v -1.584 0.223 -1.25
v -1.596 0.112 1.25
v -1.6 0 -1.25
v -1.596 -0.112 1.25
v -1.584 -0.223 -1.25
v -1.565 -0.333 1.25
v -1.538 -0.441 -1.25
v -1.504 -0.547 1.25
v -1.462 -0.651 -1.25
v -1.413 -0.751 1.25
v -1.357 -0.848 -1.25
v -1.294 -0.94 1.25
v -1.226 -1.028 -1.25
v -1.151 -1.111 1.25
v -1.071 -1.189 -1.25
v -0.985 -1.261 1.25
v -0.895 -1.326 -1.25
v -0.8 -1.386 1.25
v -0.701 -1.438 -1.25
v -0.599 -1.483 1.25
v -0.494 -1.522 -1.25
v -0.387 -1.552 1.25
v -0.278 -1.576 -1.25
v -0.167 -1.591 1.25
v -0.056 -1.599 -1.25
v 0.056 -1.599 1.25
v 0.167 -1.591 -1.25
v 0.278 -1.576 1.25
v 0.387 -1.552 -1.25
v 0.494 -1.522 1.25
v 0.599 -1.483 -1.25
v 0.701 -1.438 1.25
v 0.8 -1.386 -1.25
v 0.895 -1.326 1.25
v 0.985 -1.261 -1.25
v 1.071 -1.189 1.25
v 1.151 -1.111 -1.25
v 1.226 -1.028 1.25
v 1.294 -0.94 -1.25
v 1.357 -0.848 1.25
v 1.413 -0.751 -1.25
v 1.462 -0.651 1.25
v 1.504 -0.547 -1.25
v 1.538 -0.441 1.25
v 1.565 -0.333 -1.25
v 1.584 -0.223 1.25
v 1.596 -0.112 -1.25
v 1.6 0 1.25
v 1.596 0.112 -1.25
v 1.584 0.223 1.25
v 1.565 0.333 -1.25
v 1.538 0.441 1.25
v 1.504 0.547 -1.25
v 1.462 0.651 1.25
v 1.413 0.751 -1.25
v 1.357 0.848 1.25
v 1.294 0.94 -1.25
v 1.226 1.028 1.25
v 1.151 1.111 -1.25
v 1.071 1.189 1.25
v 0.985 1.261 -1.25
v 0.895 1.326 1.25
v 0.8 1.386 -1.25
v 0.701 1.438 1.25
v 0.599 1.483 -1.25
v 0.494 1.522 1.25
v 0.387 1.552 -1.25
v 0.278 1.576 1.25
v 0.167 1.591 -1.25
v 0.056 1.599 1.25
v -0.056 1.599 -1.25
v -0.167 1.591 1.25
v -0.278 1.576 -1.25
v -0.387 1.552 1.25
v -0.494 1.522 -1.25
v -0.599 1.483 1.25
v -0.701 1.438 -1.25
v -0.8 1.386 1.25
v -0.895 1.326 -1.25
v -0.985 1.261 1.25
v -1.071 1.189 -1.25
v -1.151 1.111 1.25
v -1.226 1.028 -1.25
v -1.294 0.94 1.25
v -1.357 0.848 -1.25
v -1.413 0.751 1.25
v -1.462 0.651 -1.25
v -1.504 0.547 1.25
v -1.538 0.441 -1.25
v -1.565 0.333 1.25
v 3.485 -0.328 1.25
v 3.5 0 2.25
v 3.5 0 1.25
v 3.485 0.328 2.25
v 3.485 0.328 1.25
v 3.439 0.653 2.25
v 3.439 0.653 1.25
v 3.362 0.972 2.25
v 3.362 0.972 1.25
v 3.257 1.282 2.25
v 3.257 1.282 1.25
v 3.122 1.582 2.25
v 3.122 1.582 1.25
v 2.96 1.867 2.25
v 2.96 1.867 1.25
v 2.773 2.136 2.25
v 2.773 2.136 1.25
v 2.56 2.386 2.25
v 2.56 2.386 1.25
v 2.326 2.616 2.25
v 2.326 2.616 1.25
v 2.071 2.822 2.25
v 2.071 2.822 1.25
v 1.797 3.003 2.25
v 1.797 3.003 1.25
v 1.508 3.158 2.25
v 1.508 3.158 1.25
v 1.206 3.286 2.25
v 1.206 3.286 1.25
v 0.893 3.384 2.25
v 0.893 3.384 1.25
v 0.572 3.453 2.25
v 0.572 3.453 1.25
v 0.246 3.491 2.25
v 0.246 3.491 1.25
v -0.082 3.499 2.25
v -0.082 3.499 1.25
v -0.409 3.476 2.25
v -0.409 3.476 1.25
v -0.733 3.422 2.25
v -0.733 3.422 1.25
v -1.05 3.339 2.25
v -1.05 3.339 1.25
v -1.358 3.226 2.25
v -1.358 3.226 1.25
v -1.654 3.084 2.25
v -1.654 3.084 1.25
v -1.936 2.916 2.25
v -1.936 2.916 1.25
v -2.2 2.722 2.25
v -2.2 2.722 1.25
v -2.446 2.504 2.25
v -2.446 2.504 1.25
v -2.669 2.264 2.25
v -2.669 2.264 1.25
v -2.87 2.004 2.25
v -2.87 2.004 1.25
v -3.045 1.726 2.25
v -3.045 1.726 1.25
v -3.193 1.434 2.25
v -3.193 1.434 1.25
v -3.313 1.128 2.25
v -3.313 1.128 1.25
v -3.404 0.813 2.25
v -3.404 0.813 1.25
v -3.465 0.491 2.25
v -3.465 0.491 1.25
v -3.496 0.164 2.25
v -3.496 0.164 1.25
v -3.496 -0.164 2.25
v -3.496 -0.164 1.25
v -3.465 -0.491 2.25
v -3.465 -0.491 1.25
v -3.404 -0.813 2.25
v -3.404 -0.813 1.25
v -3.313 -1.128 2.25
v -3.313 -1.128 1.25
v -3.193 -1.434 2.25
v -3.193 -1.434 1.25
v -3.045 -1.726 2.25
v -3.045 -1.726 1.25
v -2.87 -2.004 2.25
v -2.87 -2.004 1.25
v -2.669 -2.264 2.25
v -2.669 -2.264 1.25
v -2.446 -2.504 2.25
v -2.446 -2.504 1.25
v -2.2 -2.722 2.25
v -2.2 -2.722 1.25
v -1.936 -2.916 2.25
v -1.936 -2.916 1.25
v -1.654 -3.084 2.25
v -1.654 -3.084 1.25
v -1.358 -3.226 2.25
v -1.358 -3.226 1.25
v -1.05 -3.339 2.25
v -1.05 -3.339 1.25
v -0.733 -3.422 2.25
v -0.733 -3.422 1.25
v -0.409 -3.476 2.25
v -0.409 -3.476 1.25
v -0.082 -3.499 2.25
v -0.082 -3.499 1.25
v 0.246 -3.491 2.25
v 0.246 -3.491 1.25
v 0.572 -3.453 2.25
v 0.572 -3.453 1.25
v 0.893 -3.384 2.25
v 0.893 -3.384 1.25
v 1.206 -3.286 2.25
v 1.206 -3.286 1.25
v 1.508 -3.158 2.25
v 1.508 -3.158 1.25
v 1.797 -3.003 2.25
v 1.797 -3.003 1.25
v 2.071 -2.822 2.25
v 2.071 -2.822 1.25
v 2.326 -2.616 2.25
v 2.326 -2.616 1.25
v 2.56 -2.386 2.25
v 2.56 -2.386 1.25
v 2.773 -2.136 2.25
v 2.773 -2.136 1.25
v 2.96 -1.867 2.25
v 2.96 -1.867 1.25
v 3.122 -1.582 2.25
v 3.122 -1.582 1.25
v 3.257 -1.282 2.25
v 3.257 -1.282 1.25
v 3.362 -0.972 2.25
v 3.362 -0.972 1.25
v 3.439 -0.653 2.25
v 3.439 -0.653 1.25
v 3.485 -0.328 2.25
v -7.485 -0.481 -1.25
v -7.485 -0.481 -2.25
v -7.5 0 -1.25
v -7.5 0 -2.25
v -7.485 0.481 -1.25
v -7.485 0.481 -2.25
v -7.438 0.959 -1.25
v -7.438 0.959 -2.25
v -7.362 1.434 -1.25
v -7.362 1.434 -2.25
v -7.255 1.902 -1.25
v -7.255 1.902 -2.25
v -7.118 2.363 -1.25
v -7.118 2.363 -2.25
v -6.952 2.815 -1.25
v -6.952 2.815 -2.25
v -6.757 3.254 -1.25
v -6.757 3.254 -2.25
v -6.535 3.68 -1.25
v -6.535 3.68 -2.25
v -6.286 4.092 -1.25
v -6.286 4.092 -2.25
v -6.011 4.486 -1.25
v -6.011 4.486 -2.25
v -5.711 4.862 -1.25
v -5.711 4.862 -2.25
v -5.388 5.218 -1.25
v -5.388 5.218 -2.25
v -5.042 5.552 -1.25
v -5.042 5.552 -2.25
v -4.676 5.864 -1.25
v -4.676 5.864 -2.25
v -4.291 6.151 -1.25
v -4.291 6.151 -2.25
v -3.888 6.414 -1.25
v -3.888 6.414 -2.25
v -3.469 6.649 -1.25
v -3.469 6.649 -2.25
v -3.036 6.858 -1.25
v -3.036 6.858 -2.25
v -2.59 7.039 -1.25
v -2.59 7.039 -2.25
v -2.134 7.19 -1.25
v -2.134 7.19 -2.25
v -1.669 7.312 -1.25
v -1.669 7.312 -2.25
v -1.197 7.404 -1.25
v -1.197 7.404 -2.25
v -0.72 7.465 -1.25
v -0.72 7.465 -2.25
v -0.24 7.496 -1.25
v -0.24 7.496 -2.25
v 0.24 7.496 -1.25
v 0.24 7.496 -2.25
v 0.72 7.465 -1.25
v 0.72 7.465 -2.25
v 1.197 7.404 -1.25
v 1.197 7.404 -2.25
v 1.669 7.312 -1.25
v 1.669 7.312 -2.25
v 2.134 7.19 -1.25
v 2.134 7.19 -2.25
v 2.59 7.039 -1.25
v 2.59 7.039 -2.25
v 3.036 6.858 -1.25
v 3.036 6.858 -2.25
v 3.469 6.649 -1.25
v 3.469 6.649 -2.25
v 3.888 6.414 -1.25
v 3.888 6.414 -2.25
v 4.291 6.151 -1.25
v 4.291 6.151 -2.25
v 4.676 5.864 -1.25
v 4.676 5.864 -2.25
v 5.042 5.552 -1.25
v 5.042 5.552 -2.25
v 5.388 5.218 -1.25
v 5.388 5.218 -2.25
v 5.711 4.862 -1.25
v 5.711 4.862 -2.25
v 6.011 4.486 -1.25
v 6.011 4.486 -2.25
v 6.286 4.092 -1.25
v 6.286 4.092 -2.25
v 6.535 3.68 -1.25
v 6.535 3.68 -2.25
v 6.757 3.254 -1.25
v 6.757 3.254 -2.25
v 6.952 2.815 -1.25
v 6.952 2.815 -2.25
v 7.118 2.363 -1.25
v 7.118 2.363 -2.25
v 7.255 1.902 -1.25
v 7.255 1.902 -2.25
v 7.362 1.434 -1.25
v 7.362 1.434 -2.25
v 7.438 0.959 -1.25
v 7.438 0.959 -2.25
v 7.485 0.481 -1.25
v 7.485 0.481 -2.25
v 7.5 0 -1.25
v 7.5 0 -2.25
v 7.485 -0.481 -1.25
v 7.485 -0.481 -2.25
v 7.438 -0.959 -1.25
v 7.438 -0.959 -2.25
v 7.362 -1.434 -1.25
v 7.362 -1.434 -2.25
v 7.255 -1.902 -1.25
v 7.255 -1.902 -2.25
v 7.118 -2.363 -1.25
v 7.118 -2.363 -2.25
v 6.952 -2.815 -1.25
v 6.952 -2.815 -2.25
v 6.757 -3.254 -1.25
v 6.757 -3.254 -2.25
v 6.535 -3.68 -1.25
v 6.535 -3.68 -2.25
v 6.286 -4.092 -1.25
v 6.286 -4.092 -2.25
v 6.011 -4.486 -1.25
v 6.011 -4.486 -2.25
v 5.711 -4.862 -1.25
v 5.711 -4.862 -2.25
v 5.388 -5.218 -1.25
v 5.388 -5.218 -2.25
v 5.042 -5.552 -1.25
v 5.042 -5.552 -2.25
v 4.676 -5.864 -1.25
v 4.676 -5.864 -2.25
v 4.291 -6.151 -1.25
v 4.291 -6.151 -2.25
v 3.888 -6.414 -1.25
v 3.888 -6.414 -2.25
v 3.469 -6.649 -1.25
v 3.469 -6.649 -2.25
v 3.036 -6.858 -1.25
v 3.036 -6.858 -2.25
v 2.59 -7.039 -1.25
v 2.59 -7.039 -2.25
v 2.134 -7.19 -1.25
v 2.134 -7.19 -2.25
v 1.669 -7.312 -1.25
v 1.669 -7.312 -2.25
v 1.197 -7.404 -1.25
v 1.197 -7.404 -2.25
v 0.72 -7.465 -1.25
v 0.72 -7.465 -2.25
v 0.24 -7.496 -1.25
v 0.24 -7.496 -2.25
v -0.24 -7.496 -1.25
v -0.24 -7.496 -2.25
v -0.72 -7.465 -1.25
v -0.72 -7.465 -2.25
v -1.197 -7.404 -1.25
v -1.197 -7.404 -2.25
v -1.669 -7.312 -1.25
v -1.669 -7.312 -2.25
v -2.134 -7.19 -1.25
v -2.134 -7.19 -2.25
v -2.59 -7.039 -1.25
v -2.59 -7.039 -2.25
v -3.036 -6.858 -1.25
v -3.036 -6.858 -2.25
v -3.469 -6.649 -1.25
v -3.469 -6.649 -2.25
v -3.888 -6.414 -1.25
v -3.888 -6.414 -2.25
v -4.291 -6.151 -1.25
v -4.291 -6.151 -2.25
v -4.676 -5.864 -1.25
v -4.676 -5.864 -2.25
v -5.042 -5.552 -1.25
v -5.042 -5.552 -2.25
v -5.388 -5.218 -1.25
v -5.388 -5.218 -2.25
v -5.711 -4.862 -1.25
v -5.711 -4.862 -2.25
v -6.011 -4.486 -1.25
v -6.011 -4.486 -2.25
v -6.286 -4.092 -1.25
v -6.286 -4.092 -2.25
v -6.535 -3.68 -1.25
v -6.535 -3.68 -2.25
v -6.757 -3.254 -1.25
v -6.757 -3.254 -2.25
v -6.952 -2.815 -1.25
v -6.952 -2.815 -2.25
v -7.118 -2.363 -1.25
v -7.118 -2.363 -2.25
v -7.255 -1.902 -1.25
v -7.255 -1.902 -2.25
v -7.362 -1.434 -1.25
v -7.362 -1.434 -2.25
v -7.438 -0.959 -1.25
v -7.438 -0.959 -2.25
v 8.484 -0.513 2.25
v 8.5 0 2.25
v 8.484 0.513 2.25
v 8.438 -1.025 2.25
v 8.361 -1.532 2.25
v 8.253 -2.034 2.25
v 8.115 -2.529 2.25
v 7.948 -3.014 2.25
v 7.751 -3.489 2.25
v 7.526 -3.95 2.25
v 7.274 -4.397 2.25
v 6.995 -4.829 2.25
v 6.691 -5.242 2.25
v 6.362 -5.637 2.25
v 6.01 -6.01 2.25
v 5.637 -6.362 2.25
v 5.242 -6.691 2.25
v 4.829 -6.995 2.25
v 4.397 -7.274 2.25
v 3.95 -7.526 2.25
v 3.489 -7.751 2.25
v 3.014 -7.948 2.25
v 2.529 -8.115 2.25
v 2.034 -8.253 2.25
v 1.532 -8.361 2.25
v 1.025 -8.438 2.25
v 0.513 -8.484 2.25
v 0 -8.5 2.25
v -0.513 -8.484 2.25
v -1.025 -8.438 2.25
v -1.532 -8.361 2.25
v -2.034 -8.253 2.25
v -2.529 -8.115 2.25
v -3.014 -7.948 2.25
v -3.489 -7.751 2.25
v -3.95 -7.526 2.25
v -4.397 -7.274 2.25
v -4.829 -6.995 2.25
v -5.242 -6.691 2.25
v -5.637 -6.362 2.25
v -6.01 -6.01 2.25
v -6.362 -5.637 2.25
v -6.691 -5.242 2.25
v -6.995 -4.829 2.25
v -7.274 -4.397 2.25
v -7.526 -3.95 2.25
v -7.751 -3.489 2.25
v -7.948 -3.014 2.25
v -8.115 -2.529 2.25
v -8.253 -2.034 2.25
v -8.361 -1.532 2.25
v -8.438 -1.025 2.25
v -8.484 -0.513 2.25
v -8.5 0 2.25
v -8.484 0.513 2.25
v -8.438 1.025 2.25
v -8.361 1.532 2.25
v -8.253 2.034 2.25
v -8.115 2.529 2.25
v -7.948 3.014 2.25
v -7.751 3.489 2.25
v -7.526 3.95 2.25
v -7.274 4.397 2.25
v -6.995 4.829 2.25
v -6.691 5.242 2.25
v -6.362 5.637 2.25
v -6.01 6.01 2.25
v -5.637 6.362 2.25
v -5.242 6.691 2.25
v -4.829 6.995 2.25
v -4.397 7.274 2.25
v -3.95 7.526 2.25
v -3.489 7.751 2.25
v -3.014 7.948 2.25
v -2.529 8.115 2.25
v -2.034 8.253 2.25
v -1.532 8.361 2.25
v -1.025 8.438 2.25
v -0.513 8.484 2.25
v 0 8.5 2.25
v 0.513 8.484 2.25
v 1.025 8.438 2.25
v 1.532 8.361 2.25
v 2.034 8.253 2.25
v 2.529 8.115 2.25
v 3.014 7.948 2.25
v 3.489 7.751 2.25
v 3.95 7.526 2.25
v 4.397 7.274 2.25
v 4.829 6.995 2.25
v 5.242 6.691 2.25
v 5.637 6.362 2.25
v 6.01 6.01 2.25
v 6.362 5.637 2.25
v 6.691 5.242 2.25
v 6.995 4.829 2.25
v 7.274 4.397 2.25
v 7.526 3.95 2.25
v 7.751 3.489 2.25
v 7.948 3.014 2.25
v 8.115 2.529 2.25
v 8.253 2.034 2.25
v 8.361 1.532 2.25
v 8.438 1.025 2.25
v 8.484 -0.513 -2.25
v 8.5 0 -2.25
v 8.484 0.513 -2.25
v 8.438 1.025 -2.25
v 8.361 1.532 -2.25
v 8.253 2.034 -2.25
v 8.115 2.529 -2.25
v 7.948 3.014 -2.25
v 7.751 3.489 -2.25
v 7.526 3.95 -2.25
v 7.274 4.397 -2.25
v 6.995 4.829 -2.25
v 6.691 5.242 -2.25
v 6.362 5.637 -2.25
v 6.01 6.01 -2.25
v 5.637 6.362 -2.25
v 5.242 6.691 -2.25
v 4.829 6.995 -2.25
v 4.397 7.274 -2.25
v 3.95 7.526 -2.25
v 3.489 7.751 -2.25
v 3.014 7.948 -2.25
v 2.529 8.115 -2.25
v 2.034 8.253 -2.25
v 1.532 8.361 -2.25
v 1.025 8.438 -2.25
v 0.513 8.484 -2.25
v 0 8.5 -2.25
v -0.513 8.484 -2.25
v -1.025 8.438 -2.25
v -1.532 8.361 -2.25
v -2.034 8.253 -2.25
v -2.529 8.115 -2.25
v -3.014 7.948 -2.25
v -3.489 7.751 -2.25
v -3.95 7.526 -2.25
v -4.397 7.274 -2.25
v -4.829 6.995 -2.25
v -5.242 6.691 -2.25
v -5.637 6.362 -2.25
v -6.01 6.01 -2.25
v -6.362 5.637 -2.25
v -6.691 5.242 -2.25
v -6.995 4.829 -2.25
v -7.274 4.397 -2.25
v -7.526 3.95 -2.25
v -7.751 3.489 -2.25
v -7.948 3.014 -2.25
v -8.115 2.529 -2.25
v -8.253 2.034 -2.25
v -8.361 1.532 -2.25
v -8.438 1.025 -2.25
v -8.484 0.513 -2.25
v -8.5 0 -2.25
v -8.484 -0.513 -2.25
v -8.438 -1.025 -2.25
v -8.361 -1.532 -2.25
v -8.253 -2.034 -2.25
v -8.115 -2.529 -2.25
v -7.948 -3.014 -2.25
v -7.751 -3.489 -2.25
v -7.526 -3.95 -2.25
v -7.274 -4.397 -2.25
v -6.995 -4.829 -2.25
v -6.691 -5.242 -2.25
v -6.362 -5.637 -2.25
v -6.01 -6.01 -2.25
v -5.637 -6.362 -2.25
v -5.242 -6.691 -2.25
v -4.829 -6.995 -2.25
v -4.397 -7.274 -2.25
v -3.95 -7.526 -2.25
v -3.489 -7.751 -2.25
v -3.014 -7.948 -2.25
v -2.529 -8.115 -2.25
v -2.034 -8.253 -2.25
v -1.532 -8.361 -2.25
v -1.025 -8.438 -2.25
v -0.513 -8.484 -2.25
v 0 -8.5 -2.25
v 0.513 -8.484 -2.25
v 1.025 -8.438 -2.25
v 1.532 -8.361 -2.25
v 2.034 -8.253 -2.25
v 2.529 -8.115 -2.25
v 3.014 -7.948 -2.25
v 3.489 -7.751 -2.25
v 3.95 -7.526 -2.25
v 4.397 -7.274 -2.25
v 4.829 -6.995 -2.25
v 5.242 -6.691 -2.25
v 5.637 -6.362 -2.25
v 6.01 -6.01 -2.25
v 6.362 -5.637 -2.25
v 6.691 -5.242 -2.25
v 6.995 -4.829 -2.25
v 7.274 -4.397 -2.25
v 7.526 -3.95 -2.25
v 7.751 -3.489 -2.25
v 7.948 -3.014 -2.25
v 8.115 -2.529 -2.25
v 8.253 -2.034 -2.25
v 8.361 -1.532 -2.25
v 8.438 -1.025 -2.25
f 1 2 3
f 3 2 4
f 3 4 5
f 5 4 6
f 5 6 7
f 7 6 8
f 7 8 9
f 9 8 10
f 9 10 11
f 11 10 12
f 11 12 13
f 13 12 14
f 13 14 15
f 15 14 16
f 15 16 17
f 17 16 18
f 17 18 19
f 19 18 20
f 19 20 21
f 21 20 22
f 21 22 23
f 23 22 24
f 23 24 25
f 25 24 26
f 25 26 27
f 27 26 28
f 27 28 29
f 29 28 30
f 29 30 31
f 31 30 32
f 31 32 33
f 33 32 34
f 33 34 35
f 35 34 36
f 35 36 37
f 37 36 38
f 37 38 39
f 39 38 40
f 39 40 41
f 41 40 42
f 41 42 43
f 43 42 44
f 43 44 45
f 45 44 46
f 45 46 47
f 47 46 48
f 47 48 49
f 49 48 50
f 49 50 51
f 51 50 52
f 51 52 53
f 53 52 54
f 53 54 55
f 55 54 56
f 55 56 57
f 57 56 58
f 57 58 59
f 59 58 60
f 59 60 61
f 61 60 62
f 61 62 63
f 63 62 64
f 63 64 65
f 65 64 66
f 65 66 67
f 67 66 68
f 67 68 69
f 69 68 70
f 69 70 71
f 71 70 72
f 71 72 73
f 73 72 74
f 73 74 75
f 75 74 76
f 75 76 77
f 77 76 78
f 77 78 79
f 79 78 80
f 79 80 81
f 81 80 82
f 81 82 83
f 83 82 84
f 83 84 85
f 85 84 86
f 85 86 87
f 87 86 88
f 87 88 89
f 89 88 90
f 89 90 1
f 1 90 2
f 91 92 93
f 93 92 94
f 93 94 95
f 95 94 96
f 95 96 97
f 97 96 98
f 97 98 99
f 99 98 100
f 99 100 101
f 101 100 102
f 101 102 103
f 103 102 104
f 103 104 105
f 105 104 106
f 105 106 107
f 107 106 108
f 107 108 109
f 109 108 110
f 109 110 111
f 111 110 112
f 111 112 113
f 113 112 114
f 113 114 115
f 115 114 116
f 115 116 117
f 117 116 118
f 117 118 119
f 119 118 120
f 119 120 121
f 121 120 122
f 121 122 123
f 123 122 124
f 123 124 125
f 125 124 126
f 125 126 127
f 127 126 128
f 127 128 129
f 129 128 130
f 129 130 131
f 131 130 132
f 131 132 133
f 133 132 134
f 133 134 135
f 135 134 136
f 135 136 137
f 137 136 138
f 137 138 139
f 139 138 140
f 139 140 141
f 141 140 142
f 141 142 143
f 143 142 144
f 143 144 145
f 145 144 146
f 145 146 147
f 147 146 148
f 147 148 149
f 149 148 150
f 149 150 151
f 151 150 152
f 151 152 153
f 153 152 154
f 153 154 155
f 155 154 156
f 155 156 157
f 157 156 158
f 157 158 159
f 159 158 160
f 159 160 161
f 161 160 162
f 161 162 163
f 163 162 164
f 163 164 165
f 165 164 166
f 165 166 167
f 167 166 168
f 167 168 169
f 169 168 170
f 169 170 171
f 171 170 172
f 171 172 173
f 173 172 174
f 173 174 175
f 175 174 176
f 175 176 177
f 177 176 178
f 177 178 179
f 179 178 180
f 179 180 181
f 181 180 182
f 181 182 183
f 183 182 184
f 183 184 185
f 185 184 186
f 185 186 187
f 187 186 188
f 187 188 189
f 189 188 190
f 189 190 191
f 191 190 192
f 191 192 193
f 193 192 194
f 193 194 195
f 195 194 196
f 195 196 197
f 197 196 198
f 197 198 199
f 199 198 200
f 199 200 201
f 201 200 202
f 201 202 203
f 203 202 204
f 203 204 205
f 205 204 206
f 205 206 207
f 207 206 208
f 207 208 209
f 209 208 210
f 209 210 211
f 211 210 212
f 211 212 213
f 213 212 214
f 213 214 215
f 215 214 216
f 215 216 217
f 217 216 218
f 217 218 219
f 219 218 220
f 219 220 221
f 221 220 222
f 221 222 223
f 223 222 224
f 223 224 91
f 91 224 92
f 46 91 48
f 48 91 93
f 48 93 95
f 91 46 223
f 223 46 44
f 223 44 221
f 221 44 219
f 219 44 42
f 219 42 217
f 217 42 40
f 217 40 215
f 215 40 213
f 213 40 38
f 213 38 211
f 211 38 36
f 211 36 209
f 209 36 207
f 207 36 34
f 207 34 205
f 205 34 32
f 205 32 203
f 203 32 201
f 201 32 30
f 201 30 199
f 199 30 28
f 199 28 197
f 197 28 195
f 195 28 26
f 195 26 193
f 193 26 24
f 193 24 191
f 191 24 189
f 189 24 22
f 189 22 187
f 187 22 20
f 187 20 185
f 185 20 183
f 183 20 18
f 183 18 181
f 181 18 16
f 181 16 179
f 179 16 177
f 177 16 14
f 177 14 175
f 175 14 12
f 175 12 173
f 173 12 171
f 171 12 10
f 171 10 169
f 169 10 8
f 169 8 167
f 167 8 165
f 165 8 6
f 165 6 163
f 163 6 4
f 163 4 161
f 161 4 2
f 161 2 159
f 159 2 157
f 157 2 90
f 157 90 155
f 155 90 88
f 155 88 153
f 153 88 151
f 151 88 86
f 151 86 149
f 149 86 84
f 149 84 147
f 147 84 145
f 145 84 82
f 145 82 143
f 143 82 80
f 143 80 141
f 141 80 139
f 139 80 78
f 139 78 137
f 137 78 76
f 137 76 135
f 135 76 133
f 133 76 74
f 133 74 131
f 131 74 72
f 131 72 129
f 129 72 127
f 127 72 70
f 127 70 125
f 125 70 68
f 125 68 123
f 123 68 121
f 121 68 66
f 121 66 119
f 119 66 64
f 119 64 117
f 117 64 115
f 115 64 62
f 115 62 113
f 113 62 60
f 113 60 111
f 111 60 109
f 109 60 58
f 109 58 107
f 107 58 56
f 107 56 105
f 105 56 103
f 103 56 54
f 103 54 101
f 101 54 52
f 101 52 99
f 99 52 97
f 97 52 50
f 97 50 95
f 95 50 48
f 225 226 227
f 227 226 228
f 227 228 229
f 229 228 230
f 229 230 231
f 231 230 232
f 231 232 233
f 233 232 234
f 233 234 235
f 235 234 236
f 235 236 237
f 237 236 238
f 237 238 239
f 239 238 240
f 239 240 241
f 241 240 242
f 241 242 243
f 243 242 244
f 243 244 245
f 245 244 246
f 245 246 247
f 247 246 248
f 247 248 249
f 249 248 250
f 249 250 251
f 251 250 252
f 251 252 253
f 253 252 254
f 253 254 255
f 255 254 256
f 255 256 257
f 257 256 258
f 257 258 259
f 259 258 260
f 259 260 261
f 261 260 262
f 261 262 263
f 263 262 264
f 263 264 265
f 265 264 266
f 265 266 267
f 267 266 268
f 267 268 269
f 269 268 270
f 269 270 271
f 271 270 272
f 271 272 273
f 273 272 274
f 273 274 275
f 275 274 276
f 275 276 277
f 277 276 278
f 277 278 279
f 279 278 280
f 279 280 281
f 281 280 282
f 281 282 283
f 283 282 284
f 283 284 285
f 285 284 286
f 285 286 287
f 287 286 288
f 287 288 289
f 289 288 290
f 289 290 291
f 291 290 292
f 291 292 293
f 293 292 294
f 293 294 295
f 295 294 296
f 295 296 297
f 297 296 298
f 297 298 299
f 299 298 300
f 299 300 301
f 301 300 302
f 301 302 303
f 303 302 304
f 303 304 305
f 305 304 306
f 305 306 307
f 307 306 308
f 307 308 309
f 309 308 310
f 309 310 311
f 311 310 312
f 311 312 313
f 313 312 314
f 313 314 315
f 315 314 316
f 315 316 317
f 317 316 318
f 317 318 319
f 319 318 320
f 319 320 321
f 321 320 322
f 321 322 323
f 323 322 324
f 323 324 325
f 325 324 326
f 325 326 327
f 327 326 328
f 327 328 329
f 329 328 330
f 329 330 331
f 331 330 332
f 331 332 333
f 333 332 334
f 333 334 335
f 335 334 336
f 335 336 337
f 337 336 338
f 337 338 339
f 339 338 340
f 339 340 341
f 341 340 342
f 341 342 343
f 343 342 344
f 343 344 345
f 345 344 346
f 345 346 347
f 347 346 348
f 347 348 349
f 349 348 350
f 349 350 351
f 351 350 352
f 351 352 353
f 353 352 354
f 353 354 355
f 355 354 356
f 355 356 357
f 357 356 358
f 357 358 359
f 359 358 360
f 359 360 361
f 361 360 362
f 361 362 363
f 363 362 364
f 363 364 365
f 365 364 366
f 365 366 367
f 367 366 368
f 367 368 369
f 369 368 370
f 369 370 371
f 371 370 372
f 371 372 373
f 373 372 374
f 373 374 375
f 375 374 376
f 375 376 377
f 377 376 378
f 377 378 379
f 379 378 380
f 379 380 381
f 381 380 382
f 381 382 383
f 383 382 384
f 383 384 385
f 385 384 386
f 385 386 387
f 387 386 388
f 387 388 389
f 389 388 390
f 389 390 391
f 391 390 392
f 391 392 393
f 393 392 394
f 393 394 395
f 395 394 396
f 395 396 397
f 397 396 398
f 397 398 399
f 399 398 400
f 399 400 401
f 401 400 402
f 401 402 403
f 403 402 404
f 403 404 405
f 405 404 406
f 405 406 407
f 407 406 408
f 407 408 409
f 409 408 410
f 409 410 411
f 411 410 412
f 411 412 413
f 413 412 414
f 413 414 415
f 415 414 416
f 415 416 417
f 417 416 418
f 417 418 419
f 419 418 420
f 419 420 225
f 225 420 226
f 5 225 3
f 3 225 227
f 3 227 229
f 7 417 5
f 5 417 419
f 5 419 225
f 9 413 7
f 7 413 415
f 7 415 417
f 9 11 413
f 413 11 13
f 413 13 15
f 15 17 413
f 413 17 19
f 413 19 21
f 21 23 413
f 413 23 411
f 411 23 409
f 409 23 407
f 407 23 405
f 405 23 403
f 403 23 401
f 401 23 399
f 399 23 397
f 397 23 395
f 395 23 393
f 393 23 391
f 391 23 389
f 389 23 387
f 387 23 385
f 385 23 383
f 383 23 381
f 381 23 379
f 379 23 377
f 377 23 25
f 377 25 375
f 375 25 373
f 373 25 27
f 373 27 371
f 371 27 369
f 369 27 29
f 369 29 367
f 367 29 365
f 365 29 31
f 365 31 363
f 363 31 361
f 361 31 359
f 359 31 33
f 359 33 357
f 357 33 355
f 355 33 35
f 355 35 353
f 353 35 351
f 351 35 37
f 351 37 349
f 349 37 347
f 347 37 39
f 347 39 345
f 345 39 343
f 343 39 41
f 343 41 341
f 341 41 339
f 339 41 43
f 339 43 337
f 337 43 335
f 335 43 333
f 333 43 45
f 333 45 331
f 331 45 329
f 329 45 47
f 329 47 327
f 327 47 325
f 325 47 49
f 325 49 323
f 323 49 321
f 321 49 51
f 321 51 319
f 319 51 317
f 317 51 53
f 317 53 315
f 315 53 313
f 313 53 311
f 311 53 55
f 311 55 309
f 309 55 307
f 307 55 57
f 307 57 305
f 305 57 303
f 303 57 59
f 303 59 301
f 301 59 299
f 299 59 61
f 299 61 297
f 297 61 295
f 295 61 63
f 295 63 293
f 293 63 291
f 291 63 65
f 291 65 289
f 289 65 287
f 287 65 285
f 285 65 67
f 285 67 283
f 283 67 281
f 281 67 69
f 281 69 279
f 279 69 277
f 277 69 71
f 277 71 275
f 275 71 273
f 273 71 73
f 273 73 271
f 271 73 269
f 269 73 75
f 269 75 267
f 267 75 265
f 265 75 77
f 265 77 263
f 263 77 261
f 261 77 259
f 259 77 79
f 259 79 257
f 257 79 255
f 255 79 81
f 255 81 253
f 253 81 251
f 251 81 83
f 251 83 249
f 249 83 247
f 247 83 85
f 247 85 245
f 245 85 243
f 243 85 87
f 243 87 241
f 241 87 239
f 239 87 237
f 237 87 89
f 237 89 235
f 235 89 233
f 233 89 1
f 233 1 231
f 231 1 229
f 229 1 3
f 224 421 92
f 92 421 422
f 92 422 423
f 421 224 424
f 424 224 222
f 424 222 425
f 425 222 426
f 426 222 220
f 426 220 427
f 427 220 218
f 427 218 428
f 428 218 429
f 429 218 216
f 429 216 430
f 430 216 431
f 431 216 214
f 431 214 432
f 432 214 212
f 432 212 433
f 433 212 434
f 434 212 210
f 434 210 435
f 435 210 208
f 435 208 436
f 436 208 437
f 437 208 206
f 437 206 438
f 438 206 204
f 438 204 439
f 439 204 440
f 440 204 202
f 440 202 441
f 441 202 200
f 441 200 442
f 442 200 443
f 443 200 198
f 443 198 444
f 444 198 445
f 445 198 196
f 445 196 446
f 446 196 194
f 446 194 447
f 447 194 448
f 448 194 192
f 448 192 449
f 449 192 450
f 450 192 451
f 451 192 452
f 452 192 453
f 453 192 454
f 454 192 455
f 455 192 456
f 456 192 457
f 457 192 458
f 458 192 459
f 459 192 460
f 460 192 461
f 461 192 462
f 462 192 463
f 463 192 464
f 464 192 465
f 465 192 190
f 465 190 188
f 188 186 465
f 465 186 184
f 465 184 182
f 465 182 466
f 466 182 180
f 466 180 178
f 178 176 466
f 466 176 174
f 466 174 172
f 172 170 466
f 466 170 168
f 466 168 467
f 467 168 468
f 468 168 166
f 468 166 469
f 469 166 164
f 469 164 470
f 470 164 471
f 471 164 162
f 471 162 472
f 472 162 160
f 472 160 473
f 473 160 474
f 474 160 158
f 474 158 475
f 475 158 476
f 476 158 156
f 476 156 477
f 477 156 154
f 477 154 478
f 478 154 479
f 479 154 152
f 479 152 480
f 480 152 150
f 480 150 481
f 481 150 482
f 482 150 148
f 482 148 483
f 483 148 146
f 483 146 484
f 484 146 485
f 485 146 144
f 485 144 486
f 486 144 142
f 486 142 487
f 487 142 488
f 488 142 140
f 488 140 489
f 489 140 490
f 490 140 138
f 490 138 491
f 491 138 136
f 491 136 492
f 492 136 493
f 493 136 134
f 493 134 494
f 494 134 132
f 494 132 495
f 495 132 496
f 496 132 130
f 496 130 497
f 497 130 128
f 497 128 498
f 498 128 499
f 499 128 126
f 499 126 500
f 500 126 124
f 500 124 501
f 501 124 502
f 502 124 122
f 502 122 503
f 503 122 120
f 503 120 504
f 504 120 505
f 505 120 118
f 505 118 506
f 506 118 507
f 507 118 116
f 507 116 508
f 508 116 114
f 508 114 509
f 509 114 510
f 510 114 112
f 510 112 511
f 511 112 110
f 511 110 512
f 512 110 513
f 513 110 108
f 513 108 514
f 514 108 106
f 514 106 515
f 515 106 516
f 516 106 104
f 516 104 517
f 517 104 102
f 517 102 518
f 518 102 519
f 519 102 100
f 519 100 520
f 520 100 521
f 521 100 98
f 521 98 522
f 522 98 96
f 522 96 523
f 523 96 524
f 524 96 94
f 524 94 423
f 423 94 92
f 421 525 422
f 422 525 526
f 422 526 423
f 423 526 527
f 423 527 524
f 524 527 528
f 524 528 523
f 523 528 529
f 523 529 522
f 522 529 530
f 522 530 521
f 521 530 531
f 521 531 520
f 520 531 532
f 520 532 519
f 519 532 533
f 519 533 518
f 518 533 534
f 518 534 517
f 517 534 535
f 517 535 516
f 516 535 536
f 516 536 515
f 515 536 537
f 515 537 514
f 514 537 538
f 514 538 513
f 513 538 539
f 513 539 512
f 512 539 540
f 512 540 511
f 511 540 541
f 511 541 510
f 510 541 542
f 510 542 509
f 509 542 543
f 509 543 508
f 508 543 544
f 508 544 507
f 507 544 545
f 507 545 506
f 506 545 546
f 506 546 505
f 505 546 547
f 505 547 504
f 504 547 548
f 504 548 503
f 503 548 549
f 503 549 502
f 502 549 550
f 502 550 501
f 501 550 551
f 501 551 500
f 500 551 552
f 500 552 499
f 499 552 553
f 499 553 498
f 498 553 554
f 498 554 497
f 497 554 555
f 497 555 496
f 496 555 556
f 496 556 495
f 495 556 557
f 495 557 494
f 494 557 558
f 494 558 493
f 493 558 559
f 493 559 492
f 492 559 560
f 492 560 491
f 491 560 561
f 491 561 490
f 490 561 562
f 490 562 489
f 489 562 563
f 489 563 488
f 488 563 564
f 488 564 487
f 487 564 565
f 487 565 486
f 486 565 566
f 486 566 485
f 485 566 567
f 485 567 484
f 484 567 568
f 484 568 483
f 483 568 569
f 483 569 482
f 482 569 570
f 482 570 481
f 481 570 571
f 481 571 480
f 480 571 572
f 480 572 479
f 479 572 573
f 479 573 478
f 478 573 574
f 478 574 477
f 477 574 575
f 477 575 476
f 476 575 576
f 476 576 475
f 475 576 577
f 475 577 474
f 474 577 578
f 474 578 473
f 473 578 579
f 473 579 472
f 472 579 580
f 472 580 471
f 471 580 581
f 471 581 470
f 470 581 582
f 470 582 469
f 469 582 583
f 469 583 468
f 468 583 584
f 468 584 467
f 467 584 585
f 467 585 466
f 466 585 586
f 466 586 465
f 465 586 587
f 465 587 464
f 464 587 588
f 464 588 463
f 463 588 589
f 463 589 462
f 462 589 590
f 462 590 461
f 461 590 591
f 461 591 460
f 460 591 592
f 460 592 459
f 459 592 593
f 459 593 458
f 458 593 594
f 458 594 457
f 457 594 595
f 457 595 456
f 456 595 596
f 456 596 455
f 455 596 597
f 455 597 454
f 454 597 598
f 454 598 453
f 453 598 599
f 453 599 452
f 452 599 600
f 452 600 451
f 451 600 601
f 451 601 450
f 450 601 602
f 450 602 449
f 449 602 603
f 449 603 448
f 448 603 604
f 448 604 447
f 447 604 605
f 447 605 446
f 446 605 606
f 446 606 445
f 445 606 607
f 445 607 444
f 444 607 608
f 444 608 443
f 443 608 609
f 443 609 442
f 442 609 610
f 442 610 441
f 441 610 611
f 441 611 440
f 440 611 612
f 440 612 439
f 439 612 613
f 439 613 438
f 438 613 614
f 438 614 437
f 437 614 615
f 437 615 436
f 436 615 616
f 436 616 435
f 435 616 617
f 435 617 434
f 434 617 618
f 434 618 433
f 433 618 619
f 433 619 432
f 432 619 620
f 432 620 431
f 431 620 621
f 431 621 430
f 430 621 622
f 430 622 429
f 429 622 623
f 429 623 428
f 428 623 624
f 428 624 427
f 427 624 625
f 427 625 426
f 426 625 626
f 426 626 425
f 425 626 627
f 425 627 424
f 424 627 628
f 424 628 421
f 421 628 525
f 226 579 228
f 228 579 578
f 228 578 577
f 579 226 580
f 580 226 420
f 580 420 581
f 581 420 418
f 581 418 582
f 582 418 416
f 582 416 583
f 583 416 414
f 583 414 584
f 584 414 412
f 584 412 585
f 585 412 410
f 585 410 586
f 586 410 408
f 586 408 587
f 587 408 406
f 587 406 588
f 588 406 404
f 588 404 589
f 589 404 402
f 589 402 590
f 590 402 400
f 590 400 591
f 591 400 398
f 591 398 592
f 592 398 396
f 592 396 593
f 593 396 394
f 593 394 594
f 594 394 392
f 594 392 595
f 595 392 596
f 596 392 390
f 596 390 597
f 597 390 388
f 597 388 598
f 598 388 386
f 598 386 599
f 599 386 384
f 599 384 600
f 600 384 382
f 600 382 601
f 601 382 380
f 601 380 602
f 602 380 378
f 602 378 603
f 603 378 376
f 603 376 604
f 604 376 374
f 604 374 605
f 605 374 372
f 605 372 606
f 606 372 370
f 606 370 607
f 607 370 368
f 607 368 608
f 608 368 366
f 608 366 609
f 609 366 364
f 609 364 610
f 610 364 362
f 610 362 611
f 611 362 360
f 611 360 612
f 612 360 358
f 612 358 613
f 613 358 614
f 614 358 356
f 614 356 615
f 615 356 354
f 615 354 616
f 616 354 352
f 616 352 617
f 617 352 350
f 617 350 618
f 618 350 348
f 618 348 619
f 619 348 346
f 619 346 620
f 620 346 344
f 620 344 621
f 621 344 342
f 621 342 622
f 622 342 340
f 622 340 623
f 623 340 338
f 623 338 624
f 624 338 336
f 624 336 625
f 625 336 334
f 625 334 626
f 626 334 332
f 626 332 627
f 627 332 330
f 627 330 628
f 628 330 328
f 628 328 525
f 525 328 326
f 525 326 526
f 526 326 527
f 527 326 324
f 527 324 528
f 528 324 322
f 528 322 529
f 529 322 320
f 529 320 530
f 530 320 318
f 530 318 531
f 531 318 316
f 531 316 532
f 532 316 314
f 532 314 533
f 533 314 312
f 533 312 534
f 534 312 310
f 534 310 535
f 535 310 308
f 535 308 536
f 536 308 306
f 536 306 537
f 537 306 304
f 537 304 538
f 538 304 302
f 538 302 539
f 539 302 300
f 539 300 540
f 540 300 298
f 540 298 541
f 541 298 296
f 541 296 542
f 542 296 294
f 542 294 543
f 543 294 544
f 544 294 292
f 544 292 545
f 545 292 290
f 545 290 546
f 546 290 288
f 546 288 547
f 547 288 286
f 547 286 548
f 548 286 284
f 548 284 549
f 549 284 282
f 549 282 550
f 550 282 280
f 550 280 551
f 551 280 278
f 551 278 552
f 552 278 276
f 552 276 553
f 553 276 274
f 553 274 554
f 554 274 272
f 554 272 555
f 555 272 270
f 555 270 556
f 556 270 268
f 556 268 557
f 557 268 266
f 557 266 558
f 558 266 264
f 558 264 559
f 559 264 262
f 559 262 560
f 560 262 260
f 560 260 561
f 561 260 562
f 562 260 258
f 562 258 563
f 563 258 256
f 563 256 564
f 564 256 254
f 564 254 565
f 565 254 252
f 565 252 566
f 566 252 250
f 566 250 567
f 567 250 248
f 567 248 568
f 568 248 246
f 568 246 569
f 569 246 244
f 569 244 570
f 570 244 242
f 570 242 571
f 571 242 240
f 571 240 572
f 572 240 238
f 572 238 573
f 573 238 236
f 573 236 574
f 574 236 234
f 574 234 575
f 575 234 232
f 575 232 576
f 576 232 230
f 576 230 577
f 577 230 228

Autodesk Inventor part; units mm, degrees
ref_plane "YZ Plane" through (0, 0, 0) normal (1, 0, 0) x (0, 1, 0)
ref_plane "XZ Plane" through (0, 0, 0) normal (0, 1, 0) x (-1, 0, 0)
ref_plane "XY Plane" through (0, 0, 0) normal (0, 0, 1) x (1, 0, 0)
sketch "Skizze1" plane through (0, 0, 0) normal (0, 0, 1) x (1, 0, 0)
  circle A0 centre (0, 0) radius 8.5
  dimension "d0" = 17
extrude "Extrusion1" add sketch "Skizze1" against normal mid plane 4.5
sketch "Skizze2" plane through (0, 0, -2.25) normal (0, 0, -1) x (-1, 0, 0)
  circle A0 centre (0, 0) radius 7.5
  dimension "d3" = 15
extrude "Extrusion2" cut sketch "Skizze2" against normal blind 1
sketch "Skizze3" plane through (0, 0, 2.25) normal (0, 0, 1) x (1, 0, 0)
  circle A0 centre (0, 0) radius 3.5
  dimension "d6" = 7
extrude "Extrusion3" cut sketch "Skizze3" against normal blind 1
sketch "Skizze4" plane through (0, 0, 1.25) normal (0, 0, 1) x (1, 0, 0)
  circle A0 centre (0, 0) radius 1.6
  dimension "d9" = 3.2
extrude "Extrusion4" cut sketch "Skizze4" against normal up to surface (2.5 mm away)
properties part number "_3D-Druck"
